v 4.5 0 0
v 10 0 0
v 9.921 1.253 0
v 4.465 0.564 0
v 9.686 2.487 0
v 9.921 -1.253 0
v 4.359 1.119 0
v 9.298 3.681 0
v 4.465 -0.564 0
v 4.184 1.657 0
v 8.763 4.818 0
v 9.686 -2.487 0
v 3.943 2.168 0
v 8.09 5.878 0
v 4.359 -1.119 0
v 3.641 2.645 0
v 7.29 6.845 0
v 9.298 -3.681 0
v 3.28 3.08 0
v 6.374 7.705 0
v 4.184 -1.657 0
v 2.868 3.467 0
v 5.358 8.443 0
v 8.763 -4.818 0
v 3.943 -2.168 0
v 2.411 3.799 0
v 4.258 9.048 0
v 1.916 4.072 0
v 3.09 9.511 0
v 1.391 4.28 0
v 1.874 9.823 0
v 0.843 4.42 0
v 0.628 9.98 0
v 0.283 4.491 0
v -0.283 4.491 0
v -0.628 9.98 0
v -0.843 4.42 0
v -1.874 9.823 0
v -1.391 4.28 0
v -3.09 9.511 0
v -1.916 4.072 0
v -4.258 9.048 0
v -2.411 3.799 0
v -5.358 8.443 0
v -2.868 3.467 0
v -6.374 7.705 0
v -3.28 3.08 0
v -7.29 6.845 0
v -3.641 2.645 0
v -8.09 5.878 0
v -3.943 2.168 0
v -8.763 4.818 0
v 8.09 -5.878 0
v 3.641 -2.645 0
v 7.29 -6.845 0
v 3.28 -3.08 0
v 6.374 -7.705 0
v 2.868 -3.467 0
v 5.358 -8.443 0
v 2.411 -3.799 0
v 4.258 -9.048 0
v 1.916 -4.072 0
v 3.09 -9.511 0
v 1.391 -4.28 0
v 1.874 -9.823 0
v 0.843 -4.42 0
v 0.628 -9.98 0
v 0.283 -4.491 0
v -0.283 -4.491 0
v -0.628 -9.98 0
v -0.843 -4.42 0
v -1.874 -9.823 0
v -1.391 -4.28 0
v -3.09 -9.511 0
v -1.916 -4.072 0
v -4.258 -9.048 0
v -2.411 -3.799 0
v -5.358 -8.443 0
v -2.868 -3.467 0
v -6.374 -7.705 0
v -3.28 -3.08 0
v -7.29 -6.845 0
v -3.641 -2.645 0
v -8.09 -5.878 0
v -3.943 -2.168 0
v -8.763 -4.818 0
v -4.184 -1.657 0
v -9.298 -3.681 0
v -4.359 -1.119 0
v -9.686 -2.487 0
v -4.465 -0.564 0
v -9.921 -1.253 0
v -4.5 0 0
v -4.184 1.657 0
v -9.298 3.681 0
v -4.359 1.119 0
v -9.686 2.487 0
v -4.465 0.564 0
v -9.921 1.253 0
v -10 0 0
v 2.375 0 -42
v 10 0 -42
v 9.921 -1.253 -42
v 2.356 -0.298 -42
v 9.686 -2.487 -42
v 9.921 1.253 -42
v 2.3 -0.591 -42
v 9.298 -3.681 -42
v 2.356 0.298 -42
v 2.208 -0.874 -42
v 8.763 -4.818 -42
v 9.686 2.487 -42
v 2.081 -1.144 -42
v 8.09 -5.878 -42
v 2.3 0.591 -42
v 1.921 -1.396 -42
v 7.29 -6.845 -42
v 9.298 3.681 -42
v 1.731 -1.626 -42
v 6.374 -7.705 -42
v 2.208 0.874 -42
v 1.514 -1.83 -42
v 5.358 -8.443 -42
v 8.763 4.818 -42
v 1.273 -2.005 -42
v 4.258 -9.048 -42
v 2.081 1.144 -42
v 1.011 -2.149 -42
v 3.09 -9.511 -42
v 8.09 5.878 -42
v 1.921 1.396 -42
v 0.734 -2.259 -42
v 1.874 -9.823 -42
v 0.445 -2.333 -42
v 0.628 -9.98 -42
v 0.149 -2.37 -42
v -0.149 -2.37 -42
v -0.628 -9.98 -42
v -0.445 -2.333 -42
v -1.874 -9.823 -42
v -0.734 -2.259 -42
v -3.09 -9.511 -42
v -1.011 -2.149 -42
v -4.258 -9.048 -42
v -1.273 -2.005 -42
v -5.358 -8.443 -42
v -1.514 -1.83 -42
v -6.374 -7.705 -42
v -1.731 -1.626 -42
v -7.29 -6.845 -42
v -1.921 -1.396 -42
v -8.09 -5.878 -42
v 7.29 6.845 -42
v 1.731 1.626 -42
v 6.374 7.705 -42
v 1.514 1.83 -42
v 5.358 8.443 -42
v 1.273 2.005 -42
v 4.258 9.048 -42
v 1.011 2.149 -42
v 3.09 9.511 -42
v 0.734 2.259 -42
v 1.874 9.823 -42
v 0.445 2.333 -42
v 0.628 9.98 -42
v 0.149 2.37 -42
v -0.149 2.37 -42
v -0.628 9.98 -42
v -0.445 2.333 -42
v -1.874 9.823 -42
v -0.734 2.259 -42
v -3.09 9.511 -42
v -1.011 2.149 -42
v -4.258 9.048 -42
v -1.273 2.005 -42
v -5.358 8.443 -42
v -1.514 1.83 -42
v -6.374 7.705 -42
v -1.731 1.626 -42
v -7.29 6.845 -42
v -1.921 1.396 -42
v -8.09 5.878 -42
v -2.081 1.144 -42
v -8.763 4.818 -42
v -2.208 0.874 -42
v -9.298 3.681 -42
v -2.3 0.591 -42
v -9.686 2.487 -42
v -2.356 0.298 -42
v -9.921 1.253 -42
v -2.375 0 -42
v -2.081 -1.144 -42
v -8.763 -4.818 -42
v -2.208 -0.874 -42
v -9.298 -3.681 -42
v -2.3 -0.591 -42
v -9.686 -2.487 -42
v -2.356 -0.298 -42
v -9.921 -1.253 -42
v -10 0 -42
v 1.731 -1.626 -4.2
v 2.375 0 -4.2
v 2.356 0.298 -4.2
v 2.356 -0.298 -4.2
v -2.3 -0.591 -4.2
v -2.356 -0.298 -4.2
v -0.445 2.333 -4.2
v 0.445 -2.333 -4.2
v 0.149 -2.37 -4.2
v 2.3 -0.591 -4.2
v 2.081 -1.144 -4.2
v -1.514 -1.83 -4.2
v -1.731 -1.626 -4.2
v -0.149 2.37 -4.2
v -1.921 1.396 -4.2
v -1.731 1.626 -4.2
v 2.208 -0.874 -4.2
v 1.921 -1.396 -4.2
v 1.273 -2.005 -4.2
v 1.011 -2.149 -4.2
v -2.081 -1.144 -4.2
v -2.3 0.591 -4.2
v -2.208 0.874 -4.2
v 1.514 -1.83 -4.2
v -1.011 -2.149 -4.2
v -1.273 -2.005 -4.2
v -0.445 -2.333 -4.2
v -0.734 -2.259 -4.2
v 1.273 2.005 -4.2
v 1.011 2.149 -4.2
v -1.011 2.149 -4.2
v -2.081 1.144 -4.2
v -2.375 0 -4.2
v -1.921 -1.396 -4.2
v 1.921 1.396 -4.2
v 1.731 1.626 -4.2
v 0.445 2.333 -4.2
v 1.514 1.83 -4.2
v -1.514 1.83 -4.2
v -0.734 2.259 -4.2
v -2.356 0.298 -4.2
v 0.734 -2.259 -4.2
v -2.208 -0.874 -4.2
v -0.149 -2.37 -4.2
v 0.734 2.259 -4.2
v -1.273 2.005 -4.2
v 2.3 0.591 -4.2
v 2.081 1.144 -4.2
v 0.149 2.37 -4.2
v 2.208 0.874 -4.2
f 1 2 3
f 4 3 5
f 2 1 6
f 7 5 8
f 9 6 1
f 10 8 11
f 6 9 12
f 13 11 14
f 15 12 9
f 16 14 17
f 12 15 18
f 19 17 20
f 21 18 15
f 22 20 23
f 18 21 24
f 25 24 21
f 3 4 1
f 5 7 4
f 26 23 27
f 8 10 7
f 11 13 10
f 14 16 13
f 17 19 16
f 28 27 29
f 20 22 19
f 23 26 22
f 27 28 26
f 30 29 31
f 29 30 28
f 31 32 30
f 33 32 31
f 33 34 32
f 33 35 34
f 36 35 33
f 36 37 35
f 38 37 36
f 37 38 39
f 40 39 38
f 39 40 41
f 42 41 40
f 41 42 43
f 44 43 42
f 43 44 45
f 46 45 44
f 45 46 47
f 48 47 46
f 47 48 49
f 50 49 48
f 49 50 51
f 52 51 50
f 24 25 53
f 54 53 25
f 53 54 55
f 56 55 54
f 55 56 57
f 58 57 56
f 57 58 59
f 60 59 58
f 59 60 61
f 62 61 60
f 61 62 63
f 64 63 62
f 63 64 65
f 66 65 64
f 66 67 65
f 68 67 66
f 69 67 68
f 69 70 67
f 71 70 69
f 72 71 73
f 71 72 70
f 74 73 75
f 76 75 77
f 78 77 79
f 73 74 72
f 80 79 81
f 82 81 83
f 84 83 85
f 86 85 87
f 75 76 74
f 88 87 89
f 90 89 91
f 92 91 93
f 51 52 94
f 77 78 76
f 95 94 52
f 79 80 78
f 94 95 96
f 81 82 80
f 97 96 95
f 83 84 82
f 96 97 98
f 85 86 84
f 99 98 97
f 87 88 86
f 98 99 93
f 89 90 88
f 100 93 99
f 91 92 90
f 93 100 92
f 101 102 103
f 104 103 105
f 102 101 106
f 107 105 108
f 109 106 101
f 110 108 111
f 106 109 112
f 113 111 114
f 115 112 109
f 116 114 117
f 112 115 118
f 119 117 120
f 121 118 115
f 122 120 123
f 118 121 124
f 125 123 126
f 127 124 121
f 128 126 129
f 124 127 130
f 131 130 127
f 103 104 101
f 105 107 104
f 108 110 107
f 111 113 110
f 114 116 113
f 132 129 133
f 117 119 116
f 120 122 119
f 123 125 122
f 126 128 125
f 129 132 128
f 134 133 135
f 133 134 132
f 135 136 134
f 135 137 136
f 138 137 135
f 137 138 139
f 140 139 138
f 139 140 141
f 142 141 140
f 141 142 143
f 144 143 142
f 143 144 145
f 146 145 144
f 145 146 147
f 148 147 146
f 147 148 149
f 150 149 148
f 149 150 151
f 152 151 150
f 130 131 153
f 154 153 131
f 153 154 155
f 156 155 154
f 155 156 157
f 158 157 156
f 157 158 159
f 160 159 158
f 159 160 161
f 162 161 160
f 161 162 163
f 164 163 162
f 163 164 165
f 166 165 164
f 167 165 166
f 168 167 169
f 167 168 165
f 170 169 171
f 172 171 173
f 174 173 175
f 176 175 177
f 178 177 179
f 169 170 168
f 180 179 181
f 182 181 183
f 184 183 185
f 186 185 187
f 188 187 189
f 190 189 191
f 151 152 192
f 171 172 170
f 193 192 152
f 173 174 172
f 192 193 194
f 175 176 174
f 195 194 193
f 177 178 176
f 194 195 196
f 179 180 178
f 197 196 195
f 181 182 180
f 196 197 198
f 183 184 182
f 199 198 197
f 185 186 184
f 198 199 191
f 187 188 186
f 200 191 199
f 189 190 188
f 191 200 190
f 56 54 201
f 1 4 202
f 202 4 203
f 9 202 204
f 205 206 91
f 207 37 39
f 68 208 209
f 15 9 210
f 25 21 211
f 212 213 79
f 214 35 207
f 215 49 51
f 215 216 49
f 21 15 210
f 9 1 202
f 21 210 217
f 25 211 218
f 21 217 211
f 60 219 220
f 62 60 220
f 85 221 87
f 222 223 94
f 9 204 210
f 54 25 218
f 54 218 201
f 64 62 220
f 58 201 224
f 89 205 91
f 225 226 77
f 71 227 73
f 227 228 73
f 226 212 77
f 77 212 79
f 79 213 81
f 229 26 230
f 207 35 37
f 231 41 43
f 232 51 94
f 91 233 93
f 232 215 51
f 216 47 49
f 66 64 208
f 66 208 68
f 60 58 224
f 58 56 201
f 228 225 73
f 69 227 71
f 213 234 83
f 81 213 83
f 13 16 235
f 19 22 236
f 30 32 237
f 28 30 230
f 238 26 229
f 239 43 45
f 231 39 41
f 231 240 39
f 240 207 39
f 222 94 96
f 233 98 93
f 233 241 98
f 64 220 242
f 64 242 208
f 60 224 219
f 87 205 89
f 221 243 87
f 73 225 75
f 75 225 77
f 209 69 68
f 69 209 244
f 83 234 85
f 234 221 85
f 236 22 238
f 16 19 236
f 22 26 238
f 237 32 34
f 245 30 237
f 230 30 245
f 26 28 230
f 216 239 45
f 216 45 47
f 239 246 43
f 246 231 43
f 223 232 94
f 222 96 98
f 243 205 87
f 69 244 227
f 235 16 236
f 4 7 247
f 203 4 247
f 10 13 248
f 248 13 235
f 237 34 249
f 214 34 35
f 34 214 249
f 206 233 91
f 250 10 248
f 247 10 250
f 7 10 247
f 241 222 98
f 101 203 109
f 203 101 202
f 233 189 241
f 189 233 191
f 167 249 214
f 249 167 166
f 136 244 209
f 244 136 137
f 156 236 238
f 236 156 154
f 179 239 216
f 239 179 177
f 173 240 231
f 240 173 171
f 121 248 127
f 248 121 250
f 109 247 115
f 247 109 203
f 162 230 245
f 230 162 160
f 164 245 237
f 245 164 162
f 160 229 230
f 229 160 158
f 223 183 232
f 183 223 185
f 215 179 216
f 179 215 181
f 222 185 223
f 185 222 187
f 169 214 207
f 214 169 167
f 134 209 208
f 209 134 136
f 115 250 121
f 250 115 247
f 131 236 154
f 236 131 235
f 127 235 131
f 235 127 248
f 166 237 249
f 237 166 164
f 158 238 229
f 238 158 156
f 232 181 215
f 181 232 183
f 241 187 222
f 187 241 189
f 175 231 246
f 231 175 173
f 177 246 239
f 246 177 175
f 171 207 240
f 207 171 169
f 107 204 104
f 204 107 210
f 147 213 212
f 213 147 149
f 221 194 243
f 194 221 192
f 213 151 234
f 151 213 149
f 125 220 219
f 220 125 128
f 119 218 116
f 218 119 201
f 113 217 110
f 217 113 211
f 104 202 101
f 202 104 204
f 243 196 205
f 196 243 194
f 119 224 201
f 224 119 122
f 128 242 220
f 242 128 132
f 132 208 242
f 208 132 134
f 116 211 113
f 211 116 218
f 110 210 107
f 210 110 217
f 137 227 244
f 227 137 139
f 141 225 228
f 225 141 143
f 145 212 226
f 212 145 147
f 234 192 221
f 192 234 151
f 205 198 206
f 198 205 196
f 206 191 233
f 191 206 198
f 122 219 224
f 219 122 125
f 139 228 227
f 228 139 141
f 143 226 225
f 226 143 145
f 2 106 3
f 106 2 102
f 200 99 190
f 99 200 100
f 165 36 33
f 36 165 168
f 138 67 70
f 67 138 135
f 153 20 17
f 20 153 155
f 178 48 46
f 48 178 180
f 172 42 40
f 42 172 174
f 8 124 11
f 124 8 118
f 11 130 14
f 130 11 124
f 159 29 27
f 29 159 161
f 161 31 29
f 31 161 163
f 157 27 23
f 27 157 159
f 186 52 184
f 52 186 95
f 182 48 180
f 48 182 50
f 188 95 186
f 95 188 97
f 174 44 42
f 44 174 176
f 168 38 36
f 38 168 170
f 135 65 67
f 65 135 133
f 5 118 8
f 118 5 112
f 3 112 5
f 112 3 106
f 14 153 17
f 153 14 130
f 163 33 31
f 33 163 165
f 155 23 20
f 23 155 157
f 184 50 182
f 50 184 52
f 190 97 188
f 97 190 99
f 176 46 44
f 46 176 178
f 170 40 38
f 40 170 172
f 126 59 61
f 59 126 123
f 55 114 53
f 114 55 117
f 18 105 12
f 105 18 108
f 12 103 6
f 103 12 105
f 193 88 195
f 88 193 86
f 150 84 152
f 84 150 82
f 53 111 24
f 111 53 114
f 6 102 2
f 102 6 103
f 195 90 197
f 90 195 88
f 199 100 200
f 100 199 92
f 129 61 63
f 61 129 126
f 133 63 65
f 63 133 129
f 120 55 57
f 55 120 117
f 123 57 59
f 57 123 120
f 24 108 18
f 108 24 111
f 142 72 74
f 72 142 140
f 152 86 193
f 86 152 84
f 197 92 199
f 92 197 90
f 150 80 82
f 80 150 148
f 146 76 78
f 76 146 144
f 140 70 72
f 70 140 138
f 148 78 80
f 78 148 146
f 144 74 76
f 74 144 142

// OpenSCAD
$fn = 50;


difference() {
	union() {
		translate(v = [0, 0, -42.0000000000]) {
			cylinder(h = 42, r = 10.0000000000);
		}
		cylinder(h = 0, r = 16.0000000000);
	}
	union() {
		translate(v = [0, 0, 0]) {
			rotate(a = [0, 0, 0]) {
				difference() {
					union() {
						#translate(v = [0, 0, -42.0000000000]) {
							cylinder(h = 42, r = 2.2500000000);
						}
						#translate(v = [0, 0, -4.2000000000]) {
							cylinder(h = 4.2000000000, r = 10.0000000000, r1 = 2.3750000000, r2 = 4.5000000000);
						}
						#translate(v = [0, 0, -42.0000000000]) {
							cylinder(h = 42, r = 2.3750000000);
						}
						#translate(v = [0, 0, -42.0000000000]) {
							cylinder(h = 42, r = 2.2500000000);
						}
					}
					union();
				}
			}
		}
	}
}
